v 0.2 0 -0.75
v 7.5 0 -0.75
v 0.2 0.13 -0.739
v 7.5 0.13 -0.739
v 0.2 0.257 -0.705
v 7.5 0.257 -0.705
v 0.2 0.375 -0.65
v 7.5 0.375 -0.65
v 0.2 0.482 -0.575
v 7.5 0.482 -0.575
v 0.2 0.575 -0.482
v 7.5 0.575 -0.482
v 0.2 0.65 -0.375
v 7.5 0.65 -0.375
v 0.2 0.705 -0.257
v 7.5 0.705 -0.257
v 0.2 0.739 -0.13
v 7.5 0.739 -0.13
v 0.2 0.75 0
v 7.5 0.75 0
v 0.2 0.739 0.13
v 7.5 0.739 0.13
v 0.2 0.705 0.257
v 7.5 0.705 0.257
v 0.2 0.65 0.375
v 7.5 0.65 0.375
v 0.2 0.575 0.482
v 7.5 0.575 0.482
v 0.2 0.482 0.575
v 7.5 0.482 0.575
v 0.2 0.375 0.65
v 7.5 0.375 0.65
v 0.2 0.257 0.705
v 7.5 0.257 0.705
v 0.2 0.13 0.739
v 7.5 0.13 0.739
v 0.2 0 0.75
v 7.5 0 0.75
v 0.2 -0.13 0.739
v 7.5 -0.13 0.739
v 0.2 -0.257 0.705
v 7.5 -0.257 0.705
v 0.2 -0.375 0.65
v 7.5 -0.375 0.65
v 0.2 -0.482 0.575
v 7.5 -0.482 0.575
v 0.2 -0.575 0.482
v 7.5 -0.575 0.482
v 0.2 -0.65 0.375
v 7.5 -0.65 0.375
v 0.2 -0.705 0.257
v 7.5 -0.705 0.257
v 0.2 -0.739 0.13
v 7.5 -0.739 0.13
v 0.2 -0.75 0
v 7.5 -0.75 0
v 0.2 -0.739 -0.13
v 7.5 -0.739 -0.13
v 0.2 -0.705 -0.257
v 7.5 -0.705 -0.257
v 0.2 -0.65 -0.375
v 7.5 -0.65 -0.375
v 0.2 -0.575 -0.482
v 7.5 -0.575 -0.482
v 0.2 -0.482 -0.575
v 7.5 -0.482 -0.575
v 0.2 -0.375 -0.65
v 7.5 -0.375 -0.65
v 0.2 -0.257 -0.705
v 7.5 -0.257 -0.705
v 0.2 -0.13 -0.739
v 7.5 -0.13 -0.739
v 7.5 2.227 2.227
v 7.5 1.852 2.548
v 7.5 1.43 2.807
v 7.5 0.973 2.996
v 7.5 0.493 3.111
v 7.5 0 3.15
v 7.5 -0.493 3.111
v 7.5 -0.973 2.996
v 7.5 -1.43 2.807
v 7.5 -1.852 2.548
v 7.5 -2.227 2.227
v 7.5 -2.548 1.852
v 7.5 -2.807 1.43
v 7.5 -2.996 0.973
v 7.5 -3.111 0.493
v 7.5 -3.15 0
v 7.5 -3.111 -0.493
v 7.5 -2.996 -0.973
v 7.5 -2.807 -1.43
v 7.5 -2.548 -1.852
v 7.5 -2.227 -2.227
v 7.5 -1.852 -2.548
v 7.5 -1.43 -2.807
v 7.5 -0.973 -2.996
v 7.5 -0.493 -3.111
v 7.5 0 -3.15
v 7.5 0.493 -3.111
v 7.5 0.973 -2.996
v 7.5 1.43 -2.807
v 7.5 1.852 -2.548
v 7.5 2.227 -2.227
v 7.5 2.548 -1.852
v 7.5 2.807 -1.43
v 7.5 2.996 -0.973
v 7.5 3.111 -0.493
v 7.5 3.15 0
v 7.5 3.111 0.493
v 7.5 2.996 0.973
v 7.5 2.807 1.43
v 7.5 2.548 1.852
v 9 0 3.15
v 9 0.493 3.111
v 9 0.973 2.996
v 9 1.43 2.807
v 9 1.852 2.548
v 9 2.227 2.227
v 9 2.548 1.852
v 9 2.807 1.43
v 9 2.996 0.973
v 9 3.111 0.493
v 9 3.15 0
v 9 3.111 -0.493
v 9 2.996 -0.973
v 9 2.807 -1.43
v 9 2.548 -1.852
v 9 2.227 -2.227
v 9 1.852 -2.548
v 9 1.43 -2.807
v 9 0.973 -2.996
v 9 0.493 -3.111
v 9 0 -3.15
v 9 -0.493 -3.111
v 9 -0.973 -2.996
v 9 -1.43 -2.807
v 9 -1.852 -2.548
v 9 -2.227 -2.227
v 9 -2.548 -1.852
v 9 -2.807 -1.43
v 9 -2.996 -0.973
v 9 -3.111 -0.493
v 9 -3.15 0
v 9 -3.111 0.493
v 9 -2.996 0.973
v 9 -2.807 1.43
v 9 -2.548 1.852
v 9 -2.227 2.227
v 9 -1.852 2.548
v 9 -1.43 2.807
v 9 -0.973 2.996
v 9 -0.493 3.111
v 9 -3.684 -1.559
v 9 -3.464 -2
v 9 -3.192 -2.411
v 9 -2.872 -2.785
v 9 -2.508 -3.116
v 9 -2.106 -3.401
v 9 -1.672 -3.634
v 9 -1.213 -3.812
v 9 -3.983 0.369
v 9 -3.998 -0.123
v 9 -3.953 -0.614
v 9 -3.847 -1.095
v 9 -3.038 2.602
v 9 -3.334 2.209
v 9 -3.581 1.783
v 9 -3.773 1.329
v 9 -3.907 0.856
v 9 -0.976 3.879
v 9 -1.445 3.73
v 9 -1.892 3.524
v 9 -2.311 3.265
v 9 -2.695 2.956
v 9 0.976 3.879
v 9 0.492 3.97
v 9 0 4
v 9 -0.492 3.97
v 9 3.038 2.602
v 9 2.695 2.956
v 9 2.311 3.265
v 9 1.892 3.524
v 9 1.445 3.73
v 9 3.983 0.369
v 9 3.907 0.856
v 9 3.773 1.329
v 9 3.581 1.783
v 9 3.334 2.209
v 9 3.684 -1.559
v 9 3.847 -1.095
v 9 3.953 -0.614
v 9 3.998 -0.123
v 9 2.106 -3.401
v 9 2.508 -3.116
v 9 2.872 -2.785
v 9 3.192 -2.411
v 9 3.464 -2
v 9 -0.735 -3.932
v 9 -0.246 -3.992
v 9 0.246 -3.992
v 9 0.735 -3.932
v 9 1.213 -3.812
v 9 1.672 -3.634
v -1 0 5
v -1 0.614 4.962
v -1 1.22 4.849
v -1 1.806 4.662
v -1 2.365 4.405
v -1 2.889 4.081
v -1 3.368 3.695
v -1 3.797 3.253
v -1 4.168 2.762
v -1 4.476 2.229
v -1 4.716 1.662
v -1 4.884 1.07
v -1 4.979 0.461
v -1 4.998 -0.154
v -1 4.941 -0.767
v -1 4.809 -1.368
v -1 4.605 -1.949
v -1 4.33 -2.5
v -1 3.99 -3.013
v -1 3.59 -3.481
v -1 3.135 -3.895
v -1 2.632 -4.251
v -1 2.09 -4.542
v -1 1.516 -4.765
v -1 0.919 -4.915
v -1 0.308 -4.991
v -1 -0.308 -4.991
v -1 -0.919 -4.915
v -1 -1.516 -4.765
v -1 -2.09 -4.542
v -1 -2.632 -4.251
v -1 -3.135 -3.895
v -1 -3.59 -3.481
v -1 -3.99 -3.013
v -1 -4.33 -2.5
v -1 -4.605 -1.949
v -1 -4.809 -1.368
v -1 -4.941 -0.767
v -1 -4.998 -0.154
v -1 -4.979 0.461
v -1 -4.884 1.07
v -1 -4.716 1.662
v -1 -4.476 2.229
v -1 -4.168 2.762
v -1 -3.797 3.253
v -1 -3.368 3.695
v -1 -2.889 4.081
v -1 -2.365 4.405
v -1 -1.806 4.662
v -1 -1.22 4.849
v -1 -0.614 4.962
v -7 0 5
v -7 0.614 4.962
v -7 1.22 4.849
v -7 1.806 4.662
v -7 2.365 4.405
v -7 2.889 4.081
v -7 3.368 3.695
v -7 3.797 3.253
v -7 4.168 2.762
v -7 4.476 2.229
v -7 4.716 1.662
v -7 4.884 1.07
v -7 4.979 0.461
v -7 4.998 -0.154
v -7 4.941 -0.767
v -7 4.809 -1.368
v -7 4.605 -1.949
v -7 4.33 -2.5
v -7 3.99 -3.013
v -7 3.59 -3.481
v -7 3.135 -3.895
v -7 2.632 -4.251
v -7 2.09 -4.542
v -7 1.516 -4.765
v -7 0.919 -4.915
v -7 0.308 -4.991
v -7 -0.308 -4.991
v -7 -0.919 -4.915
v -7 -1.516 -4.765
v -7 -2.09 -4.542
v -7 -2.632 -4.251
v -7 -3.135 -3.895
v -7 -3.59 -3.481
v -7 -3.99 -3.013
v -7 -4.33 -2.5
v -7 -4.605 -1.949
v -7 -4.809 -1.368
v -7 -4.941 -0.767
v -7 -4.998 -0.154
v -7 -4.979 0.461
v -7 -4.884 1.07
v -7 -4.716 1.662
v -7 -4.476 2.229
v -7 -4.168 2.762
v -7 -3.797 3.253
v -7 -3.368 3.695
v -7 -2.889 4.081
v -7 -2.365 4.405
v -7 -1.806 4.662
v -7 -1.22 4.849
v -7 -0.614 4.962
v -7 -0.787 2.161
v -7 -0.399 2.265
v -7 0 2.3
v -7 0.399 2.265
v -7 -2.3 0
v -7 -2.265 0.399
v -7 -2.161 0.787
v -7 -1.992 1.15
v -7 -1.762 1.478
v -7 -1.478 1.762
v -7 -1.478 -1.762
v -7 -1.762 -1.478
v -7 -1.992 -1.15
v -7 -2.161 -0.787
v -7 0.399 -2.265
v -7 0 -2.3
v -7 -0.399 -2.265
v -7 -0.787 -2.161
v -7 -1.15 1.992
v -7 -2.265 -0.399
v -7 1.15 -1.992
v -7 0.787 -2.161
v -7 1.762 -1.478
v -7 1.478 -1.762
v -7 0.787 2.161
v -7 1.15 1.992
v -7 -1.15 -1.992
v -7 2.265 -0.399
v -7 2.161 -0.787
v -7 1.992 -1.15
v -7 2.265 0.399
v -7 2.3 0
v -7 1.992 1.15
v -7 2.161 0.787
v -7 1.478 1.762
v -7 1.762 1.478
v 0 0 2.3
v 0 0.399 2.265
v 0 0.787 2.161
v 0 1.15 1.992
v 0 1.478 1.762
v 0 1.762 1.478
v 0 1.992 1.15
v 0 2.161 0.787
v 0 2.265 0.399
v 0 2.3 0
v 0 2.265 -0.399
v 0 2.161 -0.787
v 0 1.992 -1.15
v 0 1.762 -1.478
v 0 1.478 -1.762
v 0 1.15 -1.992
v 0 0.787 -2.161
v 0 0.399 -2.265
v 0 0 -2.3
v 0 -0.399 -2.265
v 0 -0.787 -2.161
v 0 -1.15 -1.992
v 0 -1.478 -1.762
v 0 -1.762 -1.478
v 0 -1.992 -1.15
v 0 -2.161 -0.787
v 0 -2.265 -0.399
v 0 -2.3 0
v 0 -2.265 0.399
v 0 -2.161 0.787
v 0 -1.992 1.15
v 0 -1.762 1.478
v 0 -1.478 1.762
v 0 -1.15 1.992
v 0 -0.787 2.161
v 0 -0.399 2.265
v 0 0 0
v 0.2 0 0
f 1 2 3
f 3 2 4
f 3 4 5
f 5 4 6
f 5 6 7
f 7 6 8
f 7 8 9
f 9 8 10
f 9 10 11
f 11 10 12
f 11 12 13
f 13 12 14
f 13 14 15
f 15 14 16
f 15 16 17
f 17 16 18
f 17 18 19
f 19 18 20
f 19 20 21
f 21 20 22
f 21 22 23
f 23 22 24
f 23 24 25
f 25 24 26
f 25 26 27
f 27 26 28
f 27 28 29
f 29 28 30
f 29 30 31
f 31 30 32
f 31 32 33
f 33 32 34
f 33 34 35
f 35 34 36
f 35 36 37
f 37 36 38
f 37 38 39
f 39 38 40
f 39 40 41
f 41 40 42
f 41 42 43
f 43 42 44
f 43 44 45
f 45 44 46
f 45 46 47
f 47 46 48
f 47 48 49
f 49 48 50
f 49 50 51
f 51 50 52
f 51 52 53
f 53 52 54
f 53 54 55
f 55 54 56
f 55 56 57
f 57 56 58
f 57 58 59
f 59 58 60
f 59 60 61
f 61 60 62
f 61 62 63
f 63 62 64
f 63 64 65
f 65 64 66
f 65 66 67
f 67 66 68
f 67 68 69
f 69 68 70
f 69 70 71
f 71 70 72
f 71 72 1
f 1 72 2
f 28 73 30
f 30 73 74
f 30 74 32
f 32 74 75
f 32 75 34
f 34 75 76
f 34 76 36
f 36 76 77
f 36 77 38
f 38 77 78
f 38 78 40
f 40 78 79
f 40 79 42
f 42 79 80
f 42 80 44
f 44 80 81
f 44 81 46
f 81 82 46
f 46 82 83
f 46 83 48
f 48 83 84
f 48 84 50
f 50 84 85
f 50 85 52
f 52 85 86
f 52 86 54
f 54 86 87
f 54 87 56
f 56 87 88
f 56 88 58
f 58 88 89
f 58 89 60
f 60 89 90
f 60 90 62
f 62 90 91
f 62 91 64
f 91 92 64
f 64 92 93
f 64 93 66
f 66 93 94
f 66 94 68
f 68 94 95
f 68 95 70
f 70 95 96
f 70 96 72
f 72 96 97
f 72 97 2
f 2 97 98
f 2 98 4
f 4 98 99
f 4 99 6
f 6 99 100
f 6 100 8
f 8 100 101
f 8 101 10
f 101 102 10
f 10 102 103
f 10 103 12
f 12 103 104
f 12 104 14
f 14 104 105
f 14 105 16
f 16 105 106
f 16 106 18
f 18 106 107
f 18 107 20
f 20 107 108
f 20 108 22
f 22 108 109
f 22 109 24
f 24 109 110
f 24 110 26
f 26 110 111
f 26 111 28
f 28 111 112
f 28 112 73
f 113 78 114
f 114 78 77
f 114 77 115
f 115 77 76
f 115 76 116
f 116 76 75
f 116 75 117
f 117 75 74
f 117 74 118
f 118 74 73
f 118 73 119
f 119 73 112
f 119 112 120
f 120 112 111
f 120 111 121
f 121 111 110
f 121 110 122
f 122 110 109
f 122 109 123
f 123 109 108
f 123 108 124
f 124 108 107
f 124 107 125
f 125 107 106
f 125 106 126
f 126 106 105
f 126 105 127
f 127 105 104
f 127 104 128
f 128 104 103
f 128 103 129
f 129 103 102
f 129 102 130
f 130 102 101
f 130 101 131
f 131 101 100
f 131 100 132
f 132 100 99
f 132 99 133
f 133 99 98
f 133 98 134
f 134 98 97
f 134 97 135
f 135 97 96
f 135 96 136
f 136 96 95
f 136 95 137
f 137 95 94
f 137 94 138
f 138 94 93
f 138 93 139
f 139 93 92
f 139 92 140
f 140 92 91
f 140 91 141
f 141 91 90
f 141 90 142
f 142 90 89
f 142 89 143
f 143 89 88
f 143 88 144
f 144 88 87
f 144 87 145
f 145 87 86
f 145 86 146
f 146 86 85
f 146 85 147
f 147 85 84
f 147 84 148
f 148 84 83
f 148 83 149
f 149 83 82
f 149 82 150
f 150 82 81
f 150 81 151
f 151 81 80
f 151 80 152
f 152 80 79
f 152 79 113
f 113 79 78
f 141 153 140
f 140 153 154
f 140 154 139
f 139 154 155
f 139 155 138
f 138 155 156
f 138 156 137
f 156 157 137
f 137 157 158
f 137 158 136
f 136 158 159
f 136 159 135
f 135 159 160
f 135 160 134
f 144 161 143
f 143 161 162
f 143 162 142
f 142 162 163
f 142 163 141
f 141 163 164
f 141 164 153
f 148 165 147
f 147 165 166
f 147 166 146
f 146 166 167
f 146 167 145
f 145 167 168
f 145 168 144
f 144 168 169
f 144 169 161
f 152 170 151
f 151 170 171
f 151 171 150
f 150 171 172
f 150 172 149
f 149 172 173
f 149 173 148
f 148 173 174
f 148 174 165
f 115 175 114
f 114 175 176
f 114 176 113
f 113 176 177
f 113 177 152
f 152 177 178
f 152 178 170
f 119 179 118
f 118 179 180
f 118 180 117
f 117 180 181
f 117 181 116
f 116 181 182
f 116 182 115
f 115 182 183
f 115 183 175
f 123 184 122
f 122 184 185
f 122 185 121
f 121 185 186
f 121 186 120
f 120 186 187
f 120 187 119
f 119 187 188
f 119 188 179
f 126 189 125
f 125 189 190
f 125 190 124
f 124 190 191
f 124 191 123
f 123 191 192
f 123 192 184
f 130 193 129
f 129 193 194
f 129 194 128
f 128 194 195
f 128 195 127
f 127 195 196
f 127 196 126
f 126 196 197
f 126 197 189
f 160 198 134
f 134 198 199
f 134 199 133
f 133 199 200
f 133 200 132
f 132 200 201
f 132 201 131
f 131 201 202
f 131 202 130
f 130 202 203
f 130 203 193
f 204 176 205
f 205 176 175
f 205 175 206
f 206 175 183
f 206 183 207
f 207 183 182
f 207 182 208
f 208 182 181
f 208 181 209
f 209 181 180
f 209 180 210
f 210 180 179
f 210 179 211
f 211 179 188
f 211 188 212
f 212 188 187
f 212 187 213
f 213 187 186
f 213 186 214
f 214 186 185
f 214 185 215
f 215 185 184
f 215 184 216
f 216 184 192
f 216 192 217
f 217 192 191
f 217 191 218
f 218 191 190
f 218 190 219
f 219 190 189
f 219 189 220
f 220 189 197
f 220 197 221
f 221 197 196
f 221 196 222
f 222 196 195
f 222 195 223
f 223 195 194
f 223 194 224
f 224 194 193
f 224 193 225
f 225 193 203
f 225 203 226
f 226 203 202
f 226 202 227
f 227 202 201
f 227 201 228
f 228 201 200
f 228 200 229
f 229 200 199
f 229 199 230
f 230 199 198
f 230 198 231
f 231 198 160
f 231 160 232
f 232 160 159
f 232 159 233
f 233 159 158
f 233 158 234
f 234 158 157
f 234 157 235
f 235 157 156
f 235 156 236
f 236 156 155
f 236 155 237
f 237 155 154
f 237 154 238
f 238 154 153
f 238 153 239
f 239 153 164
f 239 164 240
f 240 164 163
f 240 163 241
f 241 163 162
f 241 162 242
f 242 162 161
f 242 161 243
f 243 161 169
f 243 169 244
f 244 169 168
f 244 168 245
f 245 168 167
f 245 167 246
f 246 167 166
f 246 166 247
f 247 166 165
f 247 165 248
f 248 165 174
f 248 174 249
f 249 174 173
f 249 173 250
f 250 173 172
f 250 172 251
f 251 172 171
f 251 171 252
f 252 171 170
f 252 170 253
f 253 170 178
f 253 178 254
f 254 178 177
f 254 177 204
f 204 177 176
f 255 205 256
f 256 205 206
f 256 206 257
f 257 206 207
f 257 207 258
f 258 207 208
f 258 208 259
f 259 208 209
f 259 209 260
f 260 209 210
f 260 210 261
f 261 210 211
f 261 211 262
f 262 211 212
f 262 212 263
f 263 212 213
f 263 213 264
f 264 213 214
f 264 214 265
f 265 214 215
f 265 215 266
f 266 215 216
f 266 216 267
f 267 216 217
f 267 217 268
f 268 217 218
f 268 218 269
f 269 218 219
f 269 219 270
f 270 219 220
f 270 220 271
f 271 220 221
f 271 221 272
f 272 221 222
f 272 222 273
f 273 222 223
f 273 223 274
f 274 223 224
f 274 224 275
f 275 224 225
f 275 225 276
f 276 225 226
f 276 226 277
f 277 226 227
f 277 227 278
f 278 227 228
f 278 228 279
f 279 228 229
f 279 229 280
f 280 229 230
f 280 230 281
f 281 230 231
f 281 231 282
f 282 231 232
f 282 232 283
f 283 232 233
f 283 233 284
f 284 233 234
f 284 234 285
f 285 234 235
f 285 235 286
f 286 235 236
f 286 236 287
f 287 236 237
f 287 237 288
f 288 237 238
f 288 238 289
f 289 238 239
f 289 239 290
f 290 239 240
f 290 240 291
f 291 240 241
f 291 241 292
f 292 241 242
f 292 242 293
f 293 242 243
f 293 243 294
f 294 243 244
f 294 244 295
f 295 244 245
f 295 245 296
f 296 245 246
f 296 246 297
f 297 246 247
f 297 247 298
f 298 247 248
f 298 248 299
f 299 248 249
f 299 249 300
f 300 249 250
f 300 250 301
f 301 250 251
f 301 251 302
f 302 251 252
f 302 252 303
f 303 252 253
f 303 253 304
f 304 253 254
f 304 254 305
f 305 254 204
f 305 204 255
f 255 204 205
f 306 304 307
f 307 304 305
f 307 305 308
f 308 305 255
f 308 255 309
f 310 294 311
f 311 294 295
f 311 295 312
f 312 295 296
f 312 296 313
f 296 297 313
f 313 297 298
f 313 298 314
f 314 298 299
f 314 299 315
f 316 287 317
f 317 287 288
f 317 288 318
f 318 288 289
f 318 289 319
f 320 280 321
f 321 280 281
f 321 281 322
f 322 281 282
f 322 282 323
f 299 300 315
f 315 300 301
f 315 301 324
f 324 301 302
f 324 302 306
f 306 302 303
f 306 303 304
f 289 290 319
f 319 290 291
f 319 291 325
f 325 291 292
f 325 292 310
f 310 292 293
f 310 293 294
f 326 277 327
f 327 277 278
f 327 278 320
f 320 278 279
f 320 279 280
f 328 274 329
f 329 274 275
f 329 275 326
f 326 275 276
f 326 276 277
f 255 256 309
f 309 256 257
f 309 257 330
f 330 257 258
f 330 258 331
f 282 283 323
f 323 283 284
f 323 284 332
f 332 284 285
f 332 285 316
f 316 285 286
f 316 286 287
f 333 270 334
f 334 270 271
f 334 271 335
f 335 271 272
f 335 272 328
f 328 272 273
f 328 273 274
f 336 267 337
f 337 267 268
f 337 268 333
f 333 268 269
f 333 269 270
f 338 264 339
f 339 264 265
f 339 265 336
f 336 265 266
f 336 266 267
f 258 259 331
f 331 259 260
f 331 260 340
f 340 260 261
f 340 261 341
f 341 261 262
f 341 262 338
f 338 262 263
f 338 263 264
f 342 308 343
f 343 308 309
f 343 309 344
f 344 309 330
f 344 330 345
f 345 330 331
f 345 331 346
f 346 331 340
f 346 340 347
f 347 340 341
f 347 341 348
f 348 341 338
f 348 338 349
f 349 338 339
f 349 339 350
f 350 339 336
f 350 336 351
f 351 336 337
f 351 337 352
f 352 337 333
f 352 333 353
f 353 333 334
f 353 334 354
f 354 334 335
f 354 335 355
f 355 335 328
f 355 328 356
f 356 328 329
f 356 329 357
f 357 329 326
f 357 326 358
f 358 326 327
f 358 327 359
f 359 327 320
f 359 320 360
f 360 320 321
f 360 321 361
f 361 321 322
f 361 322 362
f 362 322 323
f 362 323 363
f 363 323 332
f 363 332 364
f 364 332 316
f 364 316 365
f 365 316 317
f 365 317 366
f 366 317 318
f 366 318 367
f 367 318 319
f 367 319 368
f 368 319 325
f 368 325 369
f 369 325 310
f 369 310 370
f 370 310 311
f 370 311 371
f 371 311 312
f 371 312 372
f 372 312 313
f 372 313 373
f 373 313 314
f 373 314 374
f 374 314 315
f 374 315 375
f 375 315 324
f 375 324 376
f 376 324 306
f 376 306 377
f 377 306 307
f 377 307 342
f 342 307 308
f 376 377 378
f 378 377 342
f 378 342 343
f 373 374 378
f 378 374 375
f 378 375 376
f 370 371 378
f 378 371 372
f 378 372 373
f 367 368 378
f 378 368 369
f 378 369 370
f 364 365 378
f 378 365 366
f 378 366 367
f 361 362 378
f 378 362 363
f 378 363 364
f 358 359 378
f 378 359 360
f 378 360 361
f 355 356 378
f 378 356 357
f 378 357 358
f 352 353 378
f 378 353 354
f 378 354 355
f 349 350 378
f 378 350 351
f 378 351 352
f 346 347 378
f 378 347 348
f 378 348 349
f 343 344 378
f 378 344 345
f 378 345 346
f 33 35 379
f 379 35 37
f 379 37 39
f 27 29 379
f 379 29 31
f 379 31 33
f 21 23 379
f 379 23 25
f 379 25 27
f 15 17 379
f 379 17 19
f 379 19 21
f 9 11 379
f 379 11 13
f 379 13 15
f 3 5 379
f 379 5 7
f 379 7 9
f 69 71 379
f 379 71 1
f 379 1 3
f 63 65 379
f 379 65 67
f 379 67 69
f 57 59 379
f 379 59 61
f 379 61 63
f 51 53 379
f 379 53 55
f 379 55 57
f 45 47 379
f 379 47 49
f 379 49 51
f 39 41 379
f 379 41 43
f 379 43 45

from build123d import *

# Parameters (mm, degrees)
SKIZZE2_R                       = 0.75
SCHNITT_LINEAR_AUSTRAGEN1_DEPTH = 17.132265805
AUFSATZ_LINEAR_START            = -0.2
SKIZZE3_R                       = 0.75
AUFSATZ_LINEAR_AUSTRAGEN1_DEPTH = 0.2


with BuildPart() as part:
    # Skizze1 → Rotation1 (revolve)
    with BuildSketch(Plane.XY, mode=Mode.PRIVATE) as rotation1_sk:
        Polygon((7.5, 0), (7.5, 3.15), (9, 3.15), (9, 4), (-1, 5), (-7, 5), (-7, 2.3), (0, 2.3), (0, 0), align=None)
    revolve(rotation1_sk.sketch.rotate(Axis((0, 0, 0), (1, 0, 0)), 90), axis=Axis((0, 0, 0), (1, 0, 0)))

    # Skizze2 → Schnitt-Linear austragen1 (cut, through all)
    with BuildSketch(Plane(origin=(7.5, 0, 0), x_dir=(0, 0, -1), z_dir=(1, 0, 0))):
        Circle(SKIZZE2_R)
    extrude(amount=-SCHNITT_LINEAR_AUSTRAGEN1_DEPTH, mode=Mode.SUBTRACT)

    # Skizze3 → Aufsatz-Linear austragen1 (add)
    with BuildSketch(Plane.ZY.offset(AUFSATZ_LINEAR_START)):
        with Locations(Location((0, 0, 0), (0, 0, 180))):
            Circle(SKIZZE3_R)
    extrude(amount=AUFSATZ_LINEAR_AUSTRAGEN1_DEPTH)


solid = part.part
